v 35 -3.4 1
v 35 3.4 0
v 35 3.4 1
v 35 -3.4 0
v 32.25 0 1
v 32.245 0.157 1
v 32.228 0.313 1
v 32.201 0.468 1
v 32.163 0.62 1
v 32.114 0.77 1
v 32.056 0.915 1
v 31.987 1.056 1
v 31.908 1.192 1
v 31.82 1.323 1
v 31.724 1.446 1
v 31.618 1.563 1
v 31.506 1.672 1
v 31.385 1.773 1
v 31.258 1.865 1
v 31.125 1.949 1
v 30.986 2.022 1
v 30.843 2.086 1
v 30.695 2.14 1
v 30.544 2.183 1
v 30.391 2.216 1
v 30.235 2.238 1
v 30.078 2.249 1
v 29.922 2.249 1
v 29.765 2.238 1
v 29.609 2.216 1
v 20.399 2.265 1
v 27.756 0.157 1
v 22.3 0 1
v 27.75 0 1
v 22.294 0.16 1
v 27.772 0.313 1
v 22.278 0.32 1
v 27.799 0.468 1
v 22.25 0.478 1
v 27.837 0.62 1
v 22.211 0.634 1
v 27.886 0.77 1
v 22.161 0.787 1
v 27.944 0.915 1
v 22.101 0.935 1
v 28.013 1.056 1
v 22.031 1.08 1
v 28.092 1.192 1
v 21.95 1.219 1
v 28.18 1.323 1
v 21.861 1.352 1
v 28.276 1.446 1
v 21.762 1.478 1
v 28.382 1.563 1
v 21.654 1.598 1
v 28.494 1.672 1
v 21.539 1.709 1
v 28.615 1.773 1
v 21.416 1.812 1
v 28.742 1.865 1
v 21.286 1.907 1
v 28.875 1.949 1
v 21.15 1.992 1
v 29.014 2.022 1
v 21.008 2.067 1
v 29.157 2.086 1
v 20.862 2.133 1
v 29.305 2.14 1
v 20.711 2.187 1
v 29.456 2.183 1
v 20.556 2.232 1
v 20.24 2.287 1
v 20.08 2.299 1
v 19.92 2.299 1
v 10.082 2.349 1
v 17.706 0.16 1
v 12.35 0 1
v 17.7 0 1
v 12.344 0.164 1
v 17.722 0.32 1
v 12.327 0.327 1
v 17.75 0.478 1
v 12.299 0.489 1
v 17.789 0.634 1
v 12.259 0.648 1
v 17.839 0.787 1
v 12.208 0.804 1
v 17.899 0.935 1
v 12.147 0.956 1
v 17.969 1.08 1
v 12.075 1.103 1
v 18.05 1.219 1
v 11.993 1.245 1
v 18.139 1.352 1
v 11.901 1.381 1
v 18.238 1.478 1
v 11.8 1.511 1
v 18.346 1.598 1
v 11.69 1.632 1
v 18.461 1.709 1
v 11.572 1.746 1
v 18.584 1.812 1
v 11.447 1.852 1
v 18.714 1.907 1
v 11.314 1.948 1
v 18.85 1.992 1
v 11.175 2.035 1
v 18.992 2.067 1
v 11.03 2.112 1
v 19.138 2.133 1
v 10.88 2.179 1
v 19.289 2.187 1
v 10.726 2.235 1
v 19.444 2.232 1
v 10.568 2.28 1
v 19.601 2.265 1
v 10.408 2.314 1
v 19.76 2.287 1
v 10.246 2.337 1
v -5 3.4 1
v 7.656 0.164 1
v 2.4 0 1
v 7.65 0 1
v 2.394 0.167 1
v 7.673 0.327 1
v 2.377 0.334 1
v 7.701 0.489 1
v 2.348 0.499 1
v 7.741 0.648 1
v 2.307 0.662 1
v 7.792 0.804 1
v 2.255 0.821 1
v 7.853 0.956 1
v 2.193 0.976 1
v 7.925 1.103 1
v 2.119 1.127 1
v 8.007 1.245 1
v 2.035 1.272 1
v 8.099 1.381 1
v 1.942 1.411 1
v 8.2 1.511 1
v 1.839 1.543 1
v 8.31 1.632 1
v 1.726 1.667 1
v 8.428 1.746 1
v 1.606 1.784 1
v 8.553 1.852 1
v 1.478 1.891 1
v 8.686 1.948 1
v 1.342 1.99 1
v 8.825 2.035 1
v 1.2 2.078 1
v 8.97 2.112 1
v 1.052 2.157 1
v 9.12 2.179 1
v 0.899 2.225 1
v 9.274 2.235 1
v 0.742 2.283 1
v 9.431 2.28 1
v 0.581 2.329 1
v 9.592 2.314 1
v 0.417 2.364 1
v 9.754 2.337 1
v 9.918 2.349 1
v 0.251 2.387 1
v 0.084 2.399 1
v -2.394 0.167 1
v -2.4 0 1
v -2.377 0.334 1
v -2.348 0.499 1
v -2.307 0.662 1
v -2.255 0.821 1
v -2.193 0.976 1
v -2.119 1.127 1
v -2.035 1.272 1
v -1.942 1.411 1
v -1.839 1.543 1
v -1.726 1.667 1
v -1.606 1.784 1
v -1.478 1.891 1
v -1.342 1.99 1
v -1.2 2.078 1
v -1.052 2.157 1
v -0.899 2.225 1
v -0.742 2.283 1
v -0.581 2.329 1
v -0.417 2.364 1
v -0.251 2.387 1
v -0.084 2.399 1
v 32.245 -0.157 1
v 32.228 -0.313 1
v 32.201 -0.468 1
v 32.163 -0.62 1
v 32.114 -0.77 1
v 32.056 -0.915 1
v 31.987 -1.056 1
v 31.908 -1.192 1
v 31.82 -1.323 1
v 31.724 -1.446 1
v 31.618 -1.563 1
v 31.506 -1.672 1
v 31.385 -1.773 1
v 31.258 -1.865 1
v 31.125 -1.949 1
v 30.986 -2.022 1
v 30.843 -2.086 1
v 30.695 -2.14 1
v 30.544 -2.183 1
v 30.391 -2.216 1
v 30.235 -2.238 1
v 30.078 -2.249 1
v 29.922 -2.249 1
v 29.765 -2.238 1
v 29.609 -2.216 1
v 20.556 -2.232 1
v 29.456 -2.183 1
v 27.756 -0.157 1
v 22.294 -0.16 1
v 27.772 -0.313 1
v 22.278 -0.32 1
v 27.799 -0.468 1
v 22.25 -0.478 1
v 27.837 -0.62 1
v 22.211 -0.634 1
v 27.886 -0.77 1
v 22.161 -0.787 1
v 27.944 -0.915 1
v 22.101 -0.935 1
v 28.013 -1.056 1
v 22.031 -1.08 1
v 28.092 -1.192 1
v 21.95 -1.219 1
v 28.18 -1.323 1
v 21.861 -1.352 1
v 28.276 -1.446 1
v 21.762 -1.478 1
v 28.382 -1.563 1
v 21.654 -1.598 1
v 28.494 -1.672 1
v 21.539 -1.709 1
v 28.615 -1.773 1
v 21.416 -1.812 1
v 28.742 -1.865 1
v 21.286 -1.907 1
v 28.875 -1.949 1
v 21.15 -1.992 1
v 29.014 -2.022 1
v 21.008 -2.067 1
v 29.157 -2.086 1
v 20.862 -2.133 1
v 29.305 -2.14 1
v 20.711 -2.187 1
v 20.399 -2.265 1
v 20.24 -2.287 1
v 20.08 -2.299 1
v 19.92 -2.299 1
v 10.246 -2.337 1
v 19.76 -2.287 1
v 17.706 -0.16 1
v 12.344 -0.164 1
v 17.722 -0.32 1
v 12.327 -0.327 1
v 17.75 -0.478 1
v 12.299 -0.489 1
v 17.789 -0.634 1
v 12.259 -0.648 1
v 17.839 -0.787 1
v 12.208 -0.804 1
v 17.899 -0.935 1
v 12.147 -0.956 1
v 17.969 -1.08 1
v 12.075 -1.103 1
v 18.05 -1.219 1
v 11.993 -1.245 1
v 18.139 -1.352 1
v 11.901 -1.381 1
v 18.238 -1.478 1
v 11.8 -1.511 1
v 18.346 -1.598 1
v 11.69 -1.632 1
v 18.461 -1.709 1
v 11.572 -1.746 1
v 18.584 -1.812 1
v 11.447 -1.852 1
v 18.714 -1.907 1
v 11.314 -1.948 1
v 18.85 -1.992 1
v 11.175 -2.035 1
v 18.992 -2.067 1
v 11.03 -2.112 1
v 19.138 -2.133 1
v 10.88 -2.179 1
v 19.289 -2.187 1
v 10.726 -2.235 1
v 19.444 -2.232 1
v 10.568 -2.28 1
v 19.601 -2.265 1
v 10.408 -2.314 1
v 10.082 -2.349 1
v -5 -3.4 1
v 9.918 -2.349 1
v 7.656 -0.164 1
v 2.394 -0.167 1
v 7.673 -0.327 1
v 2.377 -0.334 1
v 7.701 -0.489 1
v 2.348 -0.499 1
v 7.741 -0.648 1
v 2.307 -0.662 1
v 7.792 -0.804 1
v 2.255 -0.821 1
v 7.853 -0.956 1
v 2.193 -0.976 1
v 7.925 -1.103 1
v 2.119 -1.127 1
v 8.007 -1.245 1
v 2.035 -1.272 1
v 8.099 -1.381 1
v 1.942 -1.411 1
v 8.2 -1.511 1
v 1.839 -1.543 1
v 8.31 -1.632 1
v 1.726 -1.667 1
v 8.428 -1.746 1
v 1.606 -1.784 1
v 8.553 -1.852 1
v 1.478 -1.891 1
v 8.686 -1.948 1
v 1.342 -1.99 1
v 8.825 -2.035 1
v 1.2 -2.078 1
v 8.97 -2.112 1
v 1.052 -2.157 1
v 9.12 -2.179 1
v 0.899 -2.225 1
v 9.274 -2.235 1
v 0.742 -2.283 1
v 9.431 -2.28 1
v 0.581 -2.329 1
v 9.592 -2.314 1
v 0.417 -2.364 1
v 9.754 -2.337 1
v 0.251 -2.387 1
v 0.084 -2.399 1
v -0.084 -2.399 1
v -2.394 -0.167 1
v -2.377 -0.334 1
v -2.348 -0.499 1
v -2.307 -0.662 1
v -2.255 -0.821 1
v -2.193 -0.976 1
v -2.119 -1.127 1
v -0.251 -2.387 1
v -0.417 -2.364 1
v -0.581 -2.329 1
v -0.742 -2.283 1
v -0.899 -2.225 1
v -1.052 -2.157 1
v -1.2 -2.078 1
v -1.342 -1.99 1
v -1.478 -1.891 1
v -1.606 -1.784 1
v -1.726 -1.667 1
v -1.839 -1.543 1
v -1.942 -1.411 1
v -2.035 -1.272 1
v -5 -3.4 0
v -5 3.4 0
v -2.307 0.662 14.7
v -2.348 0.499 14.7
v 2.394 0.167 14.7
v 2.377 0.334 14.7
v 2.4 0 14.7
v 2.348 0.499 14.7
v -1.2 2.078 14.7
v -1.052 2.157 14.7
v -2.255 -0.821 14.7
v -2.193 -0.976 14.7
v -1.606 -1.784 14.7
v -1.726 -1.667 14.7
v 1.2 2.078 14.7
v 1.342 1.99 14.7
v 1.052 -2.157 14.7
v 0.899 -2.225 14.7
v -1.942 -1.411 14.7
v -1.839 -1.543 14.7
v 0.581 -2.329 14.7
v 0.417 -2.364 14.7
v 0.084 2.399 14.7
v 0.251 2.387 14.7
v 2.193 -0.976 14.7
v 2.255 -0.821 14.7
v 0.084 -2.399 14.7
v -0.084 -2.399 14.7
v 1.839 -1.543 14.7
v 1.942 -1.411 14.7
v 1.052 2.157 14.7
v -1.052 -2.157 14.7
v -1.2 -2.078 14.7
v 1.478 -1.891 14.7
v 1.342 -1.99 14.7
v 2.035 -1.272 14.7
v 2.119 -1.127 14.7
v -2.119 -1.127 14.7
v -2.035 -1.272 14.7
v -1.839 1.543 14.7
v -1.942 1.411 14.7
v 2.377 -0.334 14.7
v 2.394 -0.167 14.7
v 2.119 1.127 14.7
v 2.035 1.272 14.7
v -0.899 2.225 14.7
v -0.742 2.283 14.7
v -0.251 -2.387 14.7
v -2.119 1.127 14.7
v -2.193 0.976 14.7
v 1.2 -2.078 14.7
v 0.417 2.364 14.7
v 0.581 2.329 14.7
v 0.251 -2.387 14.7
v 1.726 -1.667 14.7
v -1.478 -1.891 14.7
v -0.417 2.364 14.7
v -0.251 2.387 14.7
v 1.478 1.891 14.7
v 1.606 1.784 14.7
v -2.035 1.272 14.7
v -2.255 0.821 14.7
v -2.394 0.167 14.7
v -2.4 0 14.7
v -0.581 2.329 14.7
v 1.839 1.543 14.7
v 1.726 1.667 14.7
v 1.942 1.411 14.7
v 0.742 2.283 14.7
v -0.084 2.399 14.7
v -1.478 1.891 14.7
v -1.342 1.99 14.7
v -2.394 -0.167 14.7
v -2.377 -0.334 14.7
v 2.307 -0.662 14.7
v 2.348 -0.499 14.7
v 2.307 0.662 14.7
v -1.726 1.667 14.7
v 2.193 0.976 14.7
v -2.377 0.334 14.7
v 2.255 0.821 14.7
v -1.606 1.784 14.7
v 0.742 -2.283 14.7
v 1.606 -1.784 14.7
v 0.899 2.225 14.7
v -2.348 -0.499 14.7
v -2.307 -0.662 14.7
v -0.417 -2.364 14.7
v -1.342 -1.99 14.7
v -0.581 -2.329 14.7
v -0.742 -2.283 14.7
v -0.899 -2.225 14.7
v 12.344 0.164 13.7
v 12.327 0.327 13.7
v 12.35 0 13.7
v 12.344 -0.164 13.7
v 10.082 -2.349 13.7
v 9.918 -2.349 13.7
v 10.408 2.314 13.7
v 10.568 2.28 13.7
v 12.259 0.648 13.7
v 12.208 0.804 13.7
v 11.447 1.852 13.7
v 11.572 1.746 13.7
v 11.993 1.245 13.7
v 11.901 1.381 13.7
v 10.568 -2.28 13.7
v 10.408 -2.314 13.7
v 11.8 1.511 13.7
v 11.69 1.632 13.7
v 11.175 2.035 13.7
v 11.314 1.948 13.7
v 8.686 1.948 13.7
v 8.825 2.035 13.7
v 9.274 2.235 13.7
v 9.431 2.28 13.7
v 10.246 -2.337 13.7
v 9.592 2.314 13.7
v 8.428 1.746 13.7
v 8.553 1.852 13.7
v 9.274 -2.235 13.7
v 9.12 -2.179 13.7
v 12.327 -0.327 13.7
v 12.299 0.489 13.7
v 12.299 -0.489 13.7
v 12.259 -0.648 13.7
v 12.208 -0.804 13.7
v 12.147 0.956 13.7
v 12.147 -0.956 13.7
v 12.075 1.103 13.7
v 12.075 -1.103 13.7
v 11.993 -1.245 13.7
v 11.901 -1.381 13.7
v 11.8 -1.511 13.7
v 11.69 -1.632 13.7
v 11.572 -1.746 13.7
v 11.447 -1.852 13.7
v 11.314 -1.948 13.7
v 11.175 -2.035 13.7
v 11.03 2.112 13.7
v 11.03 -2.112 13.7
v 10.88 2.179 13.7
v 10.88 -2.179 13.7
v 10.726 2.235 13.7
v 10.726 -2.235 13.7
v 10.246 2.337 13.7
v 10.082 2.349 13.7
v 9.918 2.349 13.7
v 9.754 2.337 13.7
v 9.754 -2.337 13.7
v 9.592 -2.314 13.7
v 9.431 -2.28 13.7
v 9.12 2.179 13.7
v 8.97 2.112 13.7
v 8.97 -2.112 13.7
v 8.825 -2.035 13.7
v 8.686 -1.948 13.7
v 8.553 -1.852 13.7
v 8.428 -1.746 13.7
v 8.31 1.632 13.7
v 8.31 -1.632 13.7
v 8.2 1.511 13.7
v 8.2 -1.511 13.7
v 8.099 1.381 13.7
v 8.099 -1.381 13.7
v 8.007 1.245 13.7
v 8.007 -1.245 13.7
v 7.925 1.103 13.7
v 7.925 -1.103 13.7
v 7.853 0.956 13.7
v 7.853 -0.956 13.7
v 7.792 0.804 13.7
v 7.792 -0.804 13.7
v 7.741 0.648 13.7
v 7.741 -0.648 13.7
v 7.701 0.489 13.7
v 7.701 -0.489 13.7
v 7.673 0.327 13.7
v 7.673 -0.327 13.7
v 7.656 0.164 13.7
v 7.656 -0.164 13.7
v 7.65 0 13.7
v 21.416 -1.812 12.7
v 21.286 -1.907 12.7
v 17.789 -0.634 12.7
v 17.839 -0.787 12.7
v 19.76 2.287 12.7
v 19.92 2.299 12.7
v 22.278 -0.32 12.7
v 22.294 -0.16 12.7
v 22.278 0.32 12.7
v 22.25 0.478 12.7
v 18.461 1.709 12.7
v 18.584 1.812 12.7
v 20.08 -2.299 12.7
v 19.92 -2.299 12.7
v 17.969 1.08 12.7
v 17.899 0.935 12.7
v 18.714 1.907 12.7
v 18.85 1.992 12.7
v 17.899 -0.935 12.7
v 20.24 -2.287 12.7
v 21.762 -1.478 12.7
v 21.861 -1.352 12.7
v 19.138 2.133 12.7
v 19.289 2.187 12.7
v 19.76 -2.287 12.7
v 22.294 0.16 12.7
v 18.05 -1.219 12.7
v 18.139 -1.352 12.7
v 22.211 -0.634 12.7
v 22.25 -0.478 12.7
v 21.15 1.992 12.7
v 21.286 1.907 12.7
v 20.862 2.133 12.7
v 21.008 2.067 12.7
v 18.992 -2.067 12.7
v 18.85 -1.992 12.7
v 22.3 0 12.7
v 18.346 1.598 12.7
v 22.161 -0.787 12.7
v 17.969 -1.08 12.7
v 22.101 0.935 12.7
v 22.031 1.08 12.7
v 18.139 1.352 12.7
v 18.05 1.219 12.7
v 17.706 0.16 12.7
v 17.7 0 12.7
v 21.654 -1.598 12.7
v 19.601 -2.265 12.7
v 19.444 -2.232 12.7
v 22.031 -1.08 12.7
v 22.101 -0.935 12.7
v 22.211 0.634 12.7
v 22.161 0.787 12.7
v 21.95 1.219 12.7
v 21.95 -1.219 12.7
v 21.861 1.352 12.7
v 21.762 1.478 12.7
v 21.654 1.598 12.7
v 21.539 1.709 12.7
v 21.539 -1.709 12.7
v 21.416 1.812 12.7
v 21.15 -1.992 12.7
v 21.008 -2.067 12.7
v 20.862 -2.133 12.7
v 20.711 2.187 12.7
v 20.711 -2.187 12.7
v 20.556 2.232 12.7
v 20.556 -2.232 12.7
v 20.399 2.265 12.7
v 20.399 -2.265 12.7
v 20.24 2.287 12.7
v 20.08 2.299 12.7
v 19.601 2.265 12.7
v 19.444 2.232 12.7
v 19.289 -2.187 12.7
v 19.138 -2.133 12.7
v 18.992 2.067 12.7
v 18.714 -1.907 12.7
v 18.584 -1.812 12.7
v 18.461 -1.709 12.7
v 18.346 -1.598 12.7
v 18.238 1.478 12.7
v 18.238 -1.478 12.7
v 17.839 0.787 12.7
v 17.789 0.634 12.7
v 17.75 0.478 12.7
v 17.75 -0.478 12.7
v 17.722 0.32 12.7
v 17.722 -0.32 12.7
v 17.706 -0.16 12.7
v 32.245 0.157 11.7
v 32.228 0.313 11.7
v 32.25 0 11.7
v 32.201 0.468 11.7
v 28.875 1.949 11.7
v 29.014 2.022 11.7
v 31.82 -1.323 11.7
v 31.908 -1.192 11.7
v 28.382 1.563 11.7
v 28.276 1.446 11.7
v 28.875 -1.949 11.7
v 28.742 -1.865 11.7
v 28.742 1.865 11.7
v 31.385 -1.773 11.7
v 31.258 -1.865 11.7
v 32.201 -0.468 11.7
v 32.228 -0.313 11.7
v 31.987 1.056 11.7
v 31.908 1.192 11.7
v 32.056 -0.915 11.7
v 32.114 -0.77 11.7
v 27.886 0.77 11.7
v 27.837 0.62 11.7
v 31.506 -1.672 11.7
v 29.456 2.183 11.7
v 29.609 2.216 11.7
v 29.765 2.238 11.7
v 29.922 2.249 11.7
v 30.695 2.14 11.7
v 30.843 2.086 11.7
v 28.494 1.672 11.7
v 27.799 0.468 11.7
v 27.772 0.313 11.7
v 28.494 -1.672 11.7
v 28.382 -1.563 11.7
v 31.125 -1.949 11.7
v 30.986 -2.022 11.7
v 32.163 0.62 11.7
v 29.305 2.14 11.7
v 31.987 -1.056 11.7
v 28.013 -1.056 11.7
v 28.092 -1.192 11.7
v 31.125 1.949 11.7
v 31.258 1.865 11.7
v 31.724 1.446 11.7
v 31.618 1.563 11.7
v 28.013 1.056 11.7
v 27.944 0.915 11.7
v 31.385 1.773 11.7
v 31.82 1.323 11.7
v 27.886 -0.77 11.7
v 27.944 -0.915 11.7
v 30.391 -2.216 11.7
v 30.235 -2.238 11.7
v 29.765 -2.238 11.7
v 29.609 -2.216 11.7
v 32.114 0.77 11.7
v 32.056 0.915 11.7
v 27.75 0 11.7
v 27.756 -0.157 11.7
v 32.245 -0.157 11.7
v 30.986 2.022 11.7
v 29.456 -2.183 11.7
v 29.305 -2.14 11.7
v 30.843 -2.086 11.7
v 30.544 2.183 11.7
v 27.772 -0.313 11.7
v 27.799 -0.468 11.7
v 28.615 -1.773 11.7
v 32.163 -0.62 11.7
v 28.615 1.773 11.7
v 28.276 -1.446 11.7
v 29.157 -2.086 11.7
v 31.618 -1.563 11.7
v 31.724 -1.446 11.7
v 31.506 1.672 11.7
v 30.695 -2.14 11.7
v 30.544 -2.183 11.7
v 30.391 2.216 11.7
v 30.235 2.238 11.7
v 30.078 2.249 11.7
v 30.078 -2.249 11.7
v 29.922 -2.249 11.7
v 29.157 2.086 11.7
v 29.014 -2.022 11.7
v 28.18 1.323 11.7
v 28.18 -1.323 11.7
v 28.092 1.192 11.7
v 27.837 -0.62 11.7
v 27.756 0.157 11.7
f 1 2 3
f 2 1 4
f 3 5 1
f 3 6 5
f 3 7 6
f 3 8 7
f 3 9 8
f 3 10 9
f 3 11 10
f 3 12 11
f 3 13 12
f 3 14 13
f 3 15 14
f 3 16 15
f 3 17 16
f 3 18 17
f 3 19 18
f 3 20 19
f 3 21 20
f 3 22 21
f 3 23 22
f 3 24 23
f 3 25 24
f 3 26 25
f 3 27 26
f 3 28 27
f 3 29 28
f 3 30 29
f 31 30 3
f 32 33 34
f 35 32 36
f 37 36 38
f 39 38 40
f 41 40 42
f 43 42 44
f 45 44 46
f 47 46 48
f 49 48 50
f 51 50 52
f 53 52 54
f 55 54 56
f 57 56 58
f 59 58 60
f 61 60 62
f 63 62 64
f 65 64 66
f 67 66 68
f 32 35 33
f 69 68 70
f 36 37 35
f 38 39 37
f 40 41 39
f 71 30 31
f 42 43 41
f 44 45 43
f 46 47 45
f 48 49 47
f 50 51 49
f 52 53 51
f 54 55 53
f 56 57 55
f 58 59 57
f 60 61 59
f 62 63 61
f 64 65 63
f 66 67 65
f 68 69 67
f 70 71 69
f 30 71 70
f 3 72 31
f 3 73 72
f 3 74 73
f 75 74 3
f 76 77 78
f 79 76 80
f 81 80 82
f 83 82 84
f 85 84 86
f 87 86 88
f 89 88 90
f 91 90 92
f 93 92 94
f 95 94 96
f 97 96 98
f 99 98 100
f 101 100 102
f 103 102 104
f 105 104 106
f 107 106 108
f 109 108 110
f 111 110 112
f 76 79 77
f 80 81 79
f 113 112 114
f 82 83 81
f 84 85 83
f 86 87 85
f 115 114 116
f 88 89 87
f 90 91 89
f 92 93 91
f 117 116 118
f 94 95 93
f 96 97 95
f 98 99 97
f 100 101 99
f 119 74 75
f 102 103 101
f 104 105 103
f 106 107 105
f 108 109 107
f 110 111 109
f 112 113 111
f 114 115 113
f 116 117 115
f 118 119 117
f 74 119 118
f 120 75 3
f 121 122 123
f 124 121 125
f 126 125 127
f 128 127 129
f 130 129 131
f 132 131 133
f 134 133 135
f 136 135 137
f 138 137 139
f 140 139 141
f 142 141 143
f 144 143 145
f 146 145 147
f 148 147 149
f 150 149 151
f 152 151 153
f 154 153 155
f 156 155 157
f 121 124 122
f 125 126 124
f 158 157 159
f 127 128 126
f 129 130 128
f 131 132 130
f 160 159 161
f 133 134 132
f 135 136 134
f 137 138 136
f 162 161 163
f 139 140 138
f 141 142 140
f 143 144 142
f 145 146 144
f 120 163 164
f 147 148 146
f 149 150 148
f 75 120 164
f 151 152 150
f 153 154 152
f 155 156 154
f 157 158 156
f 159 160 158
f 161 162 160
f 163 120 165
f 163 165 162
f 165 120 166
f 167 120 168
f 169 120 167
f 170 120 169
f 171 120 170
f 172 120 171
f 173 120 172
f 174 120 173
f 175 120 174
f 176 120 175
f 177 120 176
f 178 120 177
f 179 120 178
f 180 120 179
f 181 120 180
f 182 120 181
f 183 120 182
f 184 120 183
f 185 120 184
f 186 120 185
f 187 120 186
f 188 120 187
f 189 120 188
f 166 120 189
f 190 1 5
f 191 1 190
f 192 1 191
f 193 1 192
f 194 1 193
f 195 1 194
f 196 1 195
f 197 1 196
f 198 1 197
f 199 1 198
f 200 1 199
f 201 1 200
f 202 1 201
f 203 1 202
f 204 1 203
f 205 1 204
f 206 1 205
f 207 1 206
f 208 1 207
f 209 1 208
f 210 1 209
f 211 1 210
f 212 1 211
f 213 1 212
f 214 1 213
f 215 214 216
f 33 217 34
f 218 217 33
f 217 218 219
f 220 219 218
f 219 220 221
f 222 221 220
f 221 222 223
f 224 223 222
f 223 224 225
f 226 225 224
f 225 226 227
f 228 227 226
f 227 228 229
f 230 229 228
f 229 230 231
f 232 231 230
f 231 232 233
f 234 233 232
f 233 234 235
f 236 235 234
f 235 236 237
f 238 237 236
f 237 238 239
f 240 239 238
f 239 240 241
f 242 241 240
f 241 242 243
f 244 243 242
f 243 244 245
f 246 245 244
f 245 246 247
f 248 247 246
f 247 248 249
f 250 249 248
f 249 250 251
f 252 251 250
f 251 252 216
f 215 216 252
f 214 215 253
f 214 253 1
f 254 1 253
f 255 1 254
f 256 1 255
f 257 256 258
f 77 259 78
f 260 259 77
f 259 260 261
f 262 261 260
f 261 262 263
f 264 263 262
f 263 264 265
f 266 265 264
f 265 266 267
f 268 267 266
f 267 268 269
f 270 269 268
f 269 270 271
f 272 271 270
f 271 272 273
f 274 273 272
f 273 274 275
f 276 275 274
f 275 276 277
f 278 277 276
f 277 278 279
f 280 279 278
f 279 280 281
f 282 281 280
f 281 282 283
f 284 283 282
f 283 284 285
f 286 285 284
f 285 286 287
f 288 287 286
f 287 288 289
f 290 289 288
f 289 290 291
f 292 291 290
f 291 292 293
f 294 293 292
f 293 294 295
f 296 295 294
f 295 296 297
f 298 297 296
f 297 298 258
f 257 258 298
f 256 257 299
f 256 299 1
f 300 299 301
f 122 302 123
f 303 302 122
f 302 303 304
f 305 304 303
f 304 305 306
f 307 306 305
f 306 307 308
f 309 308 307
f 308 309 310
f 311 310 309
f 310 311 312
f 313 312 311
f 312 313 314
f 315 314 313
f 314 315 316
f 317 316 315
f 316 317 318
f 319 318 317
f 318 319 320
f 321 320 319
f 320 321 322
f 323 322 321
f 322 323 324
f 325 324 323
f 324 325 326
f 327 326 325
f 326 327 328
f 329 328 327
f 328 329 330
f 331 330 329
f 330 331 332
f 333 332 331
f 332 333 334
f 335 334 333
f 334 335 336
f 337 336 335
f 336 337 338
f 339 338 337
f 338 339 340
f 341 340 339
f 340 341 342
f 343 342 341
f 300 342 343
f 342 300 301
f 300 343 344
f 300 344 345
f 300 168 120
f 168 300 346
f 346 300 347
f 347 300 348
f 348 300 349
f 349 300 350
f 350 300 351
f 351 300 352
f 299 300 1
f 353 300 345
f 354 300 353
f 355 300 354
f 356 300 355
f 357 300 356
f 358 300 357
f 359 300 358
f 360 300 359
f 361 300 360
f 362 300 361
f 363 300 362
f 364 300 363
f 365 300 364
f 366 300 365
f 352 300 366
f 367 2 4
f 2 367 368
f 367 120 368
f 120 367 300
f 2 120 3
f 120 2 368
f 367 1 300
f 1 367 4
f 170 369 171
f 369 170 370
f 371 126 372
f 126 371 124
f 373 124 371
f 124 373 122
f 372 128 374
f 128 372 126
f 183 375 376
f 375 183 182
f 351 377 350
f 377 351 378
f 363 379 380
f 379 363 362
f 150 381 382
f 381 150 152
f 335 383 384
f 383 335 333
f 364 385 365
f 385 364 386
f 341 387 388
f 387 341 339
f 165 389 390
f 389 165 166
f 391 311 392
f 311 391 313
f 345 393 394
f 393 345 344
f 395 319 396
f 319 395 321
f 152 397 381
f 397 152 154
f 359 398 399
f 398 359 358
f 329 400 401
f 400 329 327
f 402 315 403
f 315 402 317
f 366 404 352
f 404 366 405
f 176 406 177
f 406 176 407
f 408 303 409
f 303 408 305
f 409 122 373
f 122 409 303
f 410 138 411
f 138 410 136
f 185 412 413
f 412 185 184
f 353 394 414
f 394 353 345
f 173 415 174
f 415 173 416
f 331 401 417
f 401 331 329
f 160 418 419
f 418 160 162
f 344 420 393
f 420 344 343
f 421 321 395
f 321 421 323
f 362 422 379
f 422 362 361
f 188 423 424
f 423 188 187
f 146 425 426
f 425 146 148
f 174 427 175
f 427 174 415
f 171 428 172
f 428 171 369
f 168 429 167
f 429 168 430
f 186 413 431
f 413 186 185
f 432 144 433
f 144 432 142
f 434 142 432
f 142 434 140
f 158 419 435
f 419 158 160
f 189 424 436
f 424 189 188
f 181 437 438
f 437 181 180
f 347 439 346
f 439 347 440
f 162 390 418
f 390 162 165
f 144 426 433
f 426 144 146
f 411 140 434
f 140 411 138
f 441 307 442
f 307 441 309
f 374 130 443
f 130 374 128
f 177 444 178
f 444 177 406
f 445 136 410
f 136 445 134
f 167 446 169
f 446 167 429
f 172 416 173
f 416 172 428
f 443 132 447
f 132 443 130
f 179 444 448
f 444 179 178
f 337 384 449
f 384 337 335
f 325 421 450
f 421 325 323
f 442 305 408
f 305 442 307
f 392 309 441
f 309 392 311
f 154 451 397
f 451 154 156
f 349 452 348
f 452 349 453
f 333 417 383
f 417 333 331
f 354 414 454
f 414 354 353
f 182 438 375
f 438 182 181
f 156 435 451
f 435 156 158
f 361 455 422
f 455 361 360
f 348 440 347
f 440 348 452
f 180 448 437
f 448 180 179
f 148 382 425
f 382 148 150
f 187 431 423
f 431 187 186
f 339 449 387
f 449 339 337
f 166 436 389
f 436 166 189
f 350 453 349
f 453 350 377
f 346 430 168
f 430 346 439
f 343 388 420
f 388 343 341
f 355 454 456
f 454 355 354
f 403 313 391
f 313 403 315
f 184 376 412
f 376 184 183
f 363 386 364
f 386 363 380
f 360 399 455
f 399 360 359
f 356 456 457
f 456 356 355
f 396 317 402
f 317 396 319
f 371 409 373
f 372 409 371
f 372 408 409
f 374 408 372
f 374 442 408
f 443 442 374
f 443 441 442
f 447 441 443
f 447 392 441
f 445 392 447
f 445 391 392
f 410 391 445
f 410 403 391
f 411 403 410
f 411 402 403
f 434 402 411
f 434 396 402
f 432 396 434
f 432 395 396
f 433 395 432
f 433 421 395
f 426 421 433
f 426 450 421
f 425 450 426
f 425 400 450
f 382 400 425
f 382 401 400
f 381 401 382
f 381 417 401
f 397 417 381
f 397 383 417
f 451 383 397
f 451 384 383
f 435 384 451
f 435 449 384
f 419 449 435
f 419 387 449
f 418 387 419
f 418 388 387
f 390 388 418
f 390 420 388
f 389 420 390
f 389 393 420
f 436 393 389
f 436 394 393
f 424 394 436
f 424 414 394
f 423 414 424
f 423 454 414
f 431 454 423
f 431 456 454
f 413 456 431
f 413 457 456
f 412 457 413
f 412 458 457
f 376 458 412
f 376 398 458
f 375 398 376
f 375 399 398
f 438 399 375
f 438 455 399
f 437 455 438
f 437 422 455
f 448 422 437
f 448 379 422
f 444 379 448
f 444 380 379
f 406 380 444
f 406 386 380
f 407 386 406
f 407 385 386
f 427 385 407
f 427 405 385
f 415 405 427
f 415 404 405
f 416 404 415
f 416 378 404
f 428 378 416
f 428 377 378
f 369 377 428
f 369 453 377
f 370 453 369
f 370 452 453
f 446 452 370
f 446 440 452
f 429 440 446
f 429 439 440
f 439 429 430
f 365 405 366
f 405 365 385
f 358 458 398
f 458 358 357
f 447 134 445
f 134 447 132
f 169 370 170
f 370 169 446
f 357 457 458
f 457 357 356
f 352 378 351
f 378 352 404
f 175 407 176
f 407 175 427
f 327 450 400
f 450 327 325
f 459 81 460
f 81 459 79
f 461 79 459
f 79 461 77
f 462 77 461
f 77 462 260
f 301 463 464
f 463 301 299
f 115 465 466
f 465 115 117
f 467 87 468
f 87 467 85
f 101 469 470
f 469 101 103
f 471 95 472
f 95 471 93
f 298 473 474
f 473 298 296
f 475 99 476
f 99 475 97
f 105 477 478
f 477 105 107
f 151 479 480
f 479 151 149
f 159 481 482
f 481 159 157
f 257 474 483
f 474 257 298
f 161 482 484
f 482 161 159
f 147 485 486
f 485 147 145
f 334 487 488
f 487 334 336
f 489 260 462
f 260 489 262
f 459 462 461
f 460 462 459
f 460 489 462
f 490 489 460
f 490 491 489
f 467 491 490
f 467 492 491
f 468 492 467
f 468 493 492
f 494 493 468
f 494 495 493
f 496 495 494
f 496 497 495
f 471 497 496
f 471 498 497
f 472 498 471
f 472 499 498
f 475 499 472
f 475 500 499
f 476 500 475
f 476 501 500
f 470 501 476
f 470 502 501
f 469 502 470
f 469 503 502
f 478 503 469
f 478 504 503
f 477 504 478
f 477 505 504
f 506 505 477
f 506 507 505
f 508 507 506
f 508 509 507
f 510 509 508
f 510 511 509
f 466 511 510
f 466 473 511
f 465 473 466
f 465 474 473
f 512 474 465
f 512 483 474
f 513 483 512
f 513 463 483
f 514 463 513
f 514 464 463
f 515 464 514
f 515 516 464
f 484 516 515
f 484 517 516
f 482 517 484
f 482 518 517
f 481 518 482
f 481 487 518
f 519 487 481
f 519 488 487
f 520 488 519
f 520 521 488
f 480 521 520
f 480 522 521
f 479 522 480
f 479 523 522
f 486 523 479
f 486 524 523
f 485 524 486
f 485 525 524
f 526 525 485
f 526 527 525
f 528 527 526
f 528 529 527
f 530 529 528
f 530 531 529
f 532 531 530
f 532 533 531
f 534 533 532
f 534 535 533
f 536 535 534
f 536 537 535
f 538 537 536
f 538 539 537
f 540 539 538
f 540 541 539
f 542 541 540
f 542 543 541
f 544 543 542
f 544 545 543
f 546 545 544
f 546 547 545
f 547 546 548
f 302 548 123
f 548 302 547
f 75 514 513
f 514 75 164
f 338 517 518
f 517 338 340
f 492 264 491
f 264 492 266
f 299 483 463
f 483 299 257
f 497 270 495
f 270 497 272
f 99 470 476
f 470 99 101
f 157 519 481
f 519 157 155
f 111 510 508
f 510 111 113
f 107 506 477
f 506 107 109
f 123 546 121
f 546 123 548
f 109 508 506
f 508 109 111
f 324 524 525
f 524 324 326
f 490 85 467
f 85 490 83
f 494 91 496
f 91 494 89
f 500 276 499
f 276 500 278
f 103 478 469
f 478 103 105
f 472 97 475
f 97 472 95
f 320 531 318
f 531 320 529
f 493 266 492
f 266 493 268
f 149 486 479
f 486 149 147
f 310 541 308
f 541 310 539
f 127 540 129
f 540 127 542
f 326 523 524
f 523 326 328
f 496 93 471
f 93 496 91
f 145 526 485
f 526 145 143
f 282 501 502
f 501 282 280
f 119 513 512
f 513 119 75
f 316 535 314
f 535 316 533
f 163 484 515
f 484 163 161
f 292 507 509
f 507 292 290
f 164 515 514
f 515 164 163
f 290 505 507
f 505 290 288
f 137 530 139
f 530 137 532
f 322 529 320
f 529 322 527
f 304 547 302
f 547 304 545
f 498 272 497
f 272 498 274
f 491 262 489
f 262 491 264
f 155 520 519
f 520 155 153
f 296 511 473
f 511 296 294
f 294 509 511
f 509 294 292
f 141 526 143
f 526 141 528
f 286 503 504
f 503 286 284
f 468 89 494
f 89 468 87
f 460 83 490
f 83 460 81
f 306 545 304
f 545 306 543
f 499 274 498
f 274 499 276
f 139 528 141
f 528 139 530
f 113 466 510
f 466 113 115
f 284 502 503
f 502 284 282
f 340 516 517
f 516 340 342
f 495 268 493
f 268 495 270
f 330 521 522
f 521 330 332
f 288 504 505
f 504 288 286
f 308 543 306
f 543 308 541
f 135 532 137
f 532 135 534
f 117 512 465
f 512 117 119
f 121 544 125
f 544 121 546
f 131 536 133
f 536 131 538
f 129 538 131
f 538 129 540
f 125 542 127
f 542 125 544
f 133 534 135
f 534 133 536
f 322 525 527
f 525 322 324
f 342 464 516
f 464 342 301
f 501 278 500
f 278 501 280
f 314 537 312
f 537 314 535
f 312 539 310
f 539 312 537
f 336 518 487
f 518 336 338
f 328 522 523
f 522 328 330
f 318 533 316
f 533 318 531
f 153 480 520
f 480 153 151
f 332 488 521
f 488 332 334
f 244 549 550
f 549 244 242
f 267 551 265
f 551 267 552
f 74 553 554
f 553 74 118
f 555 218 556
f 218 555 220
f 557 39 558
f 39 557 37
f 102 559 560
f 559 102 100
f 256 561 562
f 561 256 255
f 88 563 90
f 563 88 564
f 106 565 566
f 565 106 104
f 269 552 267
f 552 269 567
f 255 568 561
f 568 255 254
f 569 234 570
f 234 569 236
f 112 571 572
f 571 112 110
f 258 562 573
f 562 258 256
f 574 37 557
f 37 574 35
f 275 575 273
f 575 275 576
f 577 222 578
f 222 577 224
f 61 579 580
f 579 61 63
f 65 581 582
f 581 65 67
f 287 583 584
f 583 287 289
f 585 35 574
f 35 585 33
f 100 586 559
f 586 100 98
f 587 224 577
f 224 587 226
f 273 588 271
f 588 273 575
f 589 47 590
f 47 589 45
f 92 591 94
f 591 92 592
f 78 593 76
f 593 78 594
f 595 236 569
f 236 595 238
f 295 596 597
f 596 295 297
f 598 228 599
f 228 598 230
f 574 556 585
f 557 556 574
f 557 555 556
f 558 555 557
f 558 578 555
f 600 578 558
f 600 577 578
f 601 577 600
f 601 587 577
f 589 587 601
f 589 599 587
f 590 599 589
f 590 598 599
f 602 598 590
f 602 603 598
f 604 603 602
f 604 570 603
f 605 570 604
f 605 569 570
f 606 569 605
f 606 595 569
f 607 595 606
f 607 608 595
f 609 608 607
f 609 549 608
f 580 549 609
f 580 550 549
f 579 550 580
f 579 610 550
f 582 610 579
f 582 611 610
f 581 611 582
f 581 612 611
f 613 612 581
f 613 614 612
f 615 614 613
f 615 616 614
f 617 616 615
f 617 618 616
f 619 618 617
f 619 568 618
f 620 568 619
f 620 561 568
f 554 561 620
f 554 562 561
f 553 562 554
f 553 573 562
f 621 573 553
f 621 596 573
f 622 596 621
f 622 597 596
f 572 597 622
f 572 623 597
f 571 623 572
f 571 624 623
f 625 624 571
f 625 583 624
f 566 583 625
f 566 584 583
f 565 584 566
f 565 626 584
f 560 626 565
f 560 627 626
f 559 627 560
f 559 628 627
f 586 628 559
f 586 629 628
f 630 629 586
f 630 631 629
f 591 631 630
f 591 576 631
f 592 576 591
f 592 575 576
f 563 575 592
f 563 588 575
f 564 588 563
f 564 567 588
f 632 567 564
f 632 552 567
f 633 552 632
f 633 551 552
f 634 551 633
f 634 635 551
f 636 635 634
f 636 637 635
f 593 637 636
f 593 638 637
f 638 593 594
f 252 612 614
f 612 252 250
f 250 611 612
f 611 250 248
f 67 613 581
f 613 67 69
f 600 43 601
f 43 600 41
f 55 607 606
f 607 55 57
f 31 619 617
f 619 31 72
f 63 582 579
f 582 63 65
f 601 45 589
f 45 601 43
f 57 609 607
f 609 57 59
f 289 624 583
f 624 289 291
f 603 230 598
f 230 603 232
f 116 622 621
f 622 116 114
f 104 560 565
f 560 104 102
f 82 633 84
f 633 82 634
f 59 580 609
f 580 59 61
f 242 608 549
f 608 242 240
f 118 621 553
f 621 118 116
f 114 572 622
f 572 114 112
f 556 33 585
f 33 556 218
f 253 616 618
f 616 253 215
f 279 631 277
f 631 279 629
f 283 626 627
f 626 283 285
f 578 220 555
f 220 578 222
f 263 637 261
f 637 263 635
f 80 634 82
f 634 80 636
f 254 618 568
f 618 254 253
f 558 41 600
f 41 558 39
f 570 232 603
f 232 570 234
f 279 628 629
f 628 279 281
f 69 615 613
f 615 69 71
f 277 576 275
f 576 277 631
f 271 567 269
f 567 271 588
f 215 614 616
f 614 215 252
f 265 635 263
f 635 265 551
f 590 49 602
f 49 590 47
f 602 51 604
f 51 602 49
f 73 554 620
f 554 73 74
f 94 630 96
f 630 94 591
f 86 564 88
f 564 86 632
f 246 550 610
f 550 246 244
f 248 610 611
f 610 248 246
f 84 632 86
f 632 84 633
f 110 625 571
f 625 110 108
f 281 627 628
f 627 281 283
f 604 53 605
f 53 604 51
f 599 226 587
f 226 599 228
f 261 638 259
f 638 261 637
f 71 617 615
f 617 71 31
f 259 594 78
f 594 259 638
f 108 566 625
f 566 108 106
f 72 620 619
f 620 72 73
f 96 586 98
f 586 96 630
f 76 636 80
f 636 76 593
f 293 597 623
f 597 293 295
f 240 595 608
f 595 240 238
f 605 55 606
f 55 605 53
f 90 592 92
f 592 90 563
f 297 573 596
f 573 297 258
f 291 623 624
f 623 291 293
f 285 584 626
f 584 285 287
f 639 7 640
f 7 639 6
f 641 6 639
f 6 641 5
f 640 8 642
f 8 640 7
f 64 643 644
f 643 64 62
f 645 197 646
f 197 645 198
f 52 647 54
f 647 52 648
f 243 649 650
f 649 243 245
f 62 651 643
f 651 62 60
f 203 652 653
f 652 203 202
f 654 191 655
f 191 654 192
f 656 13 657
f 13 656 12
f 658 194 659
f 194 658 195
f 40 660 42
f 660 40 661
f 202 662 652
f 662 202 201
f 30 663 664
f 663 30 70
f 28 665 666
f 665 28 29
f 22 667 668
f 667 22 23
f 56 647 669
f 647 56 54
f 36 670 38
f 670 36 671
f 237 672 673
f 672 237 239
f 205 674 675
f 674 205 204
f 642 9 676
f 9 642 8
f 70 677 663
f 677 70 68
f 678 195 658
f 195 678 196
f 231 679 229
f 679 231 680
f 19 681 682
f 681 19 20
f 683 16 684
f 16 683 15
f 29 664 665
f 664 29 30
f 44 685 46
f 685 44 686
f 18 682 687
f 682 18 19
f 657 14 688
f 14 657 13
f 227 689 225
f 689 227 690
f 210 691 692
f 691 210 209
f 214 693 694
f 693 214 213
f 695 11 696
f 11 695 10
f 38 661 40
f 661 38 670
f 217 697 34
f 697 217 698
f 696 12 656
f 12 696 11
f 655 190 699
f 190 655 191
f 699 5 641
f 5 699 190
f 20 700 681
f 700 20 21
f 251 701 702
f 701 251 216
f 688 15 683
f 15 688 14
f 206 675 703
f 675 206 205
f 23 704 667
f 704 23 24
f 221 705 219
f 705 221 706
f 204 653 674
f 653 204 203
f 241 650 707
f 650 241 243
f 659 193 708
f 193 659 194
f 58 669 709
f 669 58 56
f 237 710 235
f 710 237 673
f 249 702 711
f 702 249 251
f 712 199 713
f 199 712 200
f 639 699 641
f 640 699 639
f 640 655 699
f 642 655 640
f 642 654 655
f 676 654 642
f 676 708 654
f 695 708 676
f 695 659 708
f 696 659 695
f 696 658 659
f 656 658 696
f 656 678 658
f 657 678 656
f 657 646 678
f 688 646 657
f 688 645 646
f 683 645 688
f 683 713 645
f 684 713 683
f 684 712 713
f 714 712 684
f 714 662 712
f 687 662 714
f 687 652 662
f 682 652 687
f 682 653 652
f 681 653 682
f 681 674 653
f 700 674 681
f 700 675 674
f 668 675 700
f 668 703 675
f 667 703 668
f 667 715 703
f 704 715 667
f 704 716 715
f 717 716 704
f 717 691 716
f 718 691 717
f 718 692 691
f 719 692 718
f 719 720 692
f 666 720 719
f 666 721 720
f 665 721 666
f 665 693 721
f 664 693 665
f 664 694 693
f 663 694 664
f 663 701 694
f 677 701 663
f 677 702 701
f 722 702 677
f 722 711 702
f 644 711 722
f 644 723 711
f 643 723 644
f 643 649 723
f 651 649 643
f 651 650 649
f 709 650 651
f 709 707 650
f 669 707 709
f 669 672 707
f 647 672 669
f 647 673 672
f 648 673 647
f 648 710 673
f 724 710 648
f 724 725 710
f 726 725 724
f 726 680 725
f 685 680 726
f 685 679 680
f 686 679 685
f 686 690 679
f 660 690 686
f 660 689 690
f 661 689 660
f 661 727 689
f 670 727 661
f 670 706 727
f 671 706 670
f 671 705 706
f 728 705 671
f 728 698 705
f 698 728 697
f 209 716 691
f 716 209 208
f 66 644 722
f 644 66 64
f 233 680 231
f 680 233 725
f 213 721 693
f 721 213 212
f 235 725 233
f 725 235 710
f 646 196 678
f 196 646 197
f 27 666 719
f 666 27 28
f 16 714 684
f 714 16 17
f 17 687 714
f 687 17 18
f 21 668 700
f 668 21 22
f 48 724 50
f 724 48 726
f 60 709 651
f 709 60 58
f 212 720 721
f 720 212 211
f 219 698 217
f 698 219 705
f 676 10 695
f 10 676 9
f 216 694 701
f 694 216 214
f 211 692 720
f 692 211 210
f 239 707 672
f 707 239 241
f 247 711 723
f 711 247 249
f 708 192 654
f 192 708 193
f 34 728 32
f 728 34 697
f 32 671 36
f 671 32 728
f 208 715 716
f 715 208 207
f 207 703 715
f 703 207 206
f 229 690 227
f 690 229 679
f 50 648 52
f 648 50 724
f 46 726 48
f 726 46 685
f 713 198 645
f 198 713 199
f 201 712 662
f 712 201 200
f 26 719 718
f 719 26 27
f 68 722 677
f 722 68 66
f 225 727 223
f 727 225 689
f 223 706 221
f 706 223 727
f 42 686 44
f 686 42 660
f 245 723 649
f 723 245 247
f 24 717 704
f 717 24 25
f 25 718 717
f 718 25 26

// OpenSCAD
$fn=90;

rodDiameter = 4.8;
rodLength = 7.7;

translate([-5,-rodDiameter/2-1,0])
	cube([40, rodDiameter+2, 1]);
cylinder(h=rodLength+7, d=rodDiameter);
translate([10,0,0])
	cylinder(h=rodLength+6, d=rodDiameter-0.1);
translate([20,0,0])
	cylinder(h=rodLength+5, d=rodDiameter-0.2);
translate([30,0,0])
	cylinder(h=rodLength+4, d=rodDiameter-0.3);
